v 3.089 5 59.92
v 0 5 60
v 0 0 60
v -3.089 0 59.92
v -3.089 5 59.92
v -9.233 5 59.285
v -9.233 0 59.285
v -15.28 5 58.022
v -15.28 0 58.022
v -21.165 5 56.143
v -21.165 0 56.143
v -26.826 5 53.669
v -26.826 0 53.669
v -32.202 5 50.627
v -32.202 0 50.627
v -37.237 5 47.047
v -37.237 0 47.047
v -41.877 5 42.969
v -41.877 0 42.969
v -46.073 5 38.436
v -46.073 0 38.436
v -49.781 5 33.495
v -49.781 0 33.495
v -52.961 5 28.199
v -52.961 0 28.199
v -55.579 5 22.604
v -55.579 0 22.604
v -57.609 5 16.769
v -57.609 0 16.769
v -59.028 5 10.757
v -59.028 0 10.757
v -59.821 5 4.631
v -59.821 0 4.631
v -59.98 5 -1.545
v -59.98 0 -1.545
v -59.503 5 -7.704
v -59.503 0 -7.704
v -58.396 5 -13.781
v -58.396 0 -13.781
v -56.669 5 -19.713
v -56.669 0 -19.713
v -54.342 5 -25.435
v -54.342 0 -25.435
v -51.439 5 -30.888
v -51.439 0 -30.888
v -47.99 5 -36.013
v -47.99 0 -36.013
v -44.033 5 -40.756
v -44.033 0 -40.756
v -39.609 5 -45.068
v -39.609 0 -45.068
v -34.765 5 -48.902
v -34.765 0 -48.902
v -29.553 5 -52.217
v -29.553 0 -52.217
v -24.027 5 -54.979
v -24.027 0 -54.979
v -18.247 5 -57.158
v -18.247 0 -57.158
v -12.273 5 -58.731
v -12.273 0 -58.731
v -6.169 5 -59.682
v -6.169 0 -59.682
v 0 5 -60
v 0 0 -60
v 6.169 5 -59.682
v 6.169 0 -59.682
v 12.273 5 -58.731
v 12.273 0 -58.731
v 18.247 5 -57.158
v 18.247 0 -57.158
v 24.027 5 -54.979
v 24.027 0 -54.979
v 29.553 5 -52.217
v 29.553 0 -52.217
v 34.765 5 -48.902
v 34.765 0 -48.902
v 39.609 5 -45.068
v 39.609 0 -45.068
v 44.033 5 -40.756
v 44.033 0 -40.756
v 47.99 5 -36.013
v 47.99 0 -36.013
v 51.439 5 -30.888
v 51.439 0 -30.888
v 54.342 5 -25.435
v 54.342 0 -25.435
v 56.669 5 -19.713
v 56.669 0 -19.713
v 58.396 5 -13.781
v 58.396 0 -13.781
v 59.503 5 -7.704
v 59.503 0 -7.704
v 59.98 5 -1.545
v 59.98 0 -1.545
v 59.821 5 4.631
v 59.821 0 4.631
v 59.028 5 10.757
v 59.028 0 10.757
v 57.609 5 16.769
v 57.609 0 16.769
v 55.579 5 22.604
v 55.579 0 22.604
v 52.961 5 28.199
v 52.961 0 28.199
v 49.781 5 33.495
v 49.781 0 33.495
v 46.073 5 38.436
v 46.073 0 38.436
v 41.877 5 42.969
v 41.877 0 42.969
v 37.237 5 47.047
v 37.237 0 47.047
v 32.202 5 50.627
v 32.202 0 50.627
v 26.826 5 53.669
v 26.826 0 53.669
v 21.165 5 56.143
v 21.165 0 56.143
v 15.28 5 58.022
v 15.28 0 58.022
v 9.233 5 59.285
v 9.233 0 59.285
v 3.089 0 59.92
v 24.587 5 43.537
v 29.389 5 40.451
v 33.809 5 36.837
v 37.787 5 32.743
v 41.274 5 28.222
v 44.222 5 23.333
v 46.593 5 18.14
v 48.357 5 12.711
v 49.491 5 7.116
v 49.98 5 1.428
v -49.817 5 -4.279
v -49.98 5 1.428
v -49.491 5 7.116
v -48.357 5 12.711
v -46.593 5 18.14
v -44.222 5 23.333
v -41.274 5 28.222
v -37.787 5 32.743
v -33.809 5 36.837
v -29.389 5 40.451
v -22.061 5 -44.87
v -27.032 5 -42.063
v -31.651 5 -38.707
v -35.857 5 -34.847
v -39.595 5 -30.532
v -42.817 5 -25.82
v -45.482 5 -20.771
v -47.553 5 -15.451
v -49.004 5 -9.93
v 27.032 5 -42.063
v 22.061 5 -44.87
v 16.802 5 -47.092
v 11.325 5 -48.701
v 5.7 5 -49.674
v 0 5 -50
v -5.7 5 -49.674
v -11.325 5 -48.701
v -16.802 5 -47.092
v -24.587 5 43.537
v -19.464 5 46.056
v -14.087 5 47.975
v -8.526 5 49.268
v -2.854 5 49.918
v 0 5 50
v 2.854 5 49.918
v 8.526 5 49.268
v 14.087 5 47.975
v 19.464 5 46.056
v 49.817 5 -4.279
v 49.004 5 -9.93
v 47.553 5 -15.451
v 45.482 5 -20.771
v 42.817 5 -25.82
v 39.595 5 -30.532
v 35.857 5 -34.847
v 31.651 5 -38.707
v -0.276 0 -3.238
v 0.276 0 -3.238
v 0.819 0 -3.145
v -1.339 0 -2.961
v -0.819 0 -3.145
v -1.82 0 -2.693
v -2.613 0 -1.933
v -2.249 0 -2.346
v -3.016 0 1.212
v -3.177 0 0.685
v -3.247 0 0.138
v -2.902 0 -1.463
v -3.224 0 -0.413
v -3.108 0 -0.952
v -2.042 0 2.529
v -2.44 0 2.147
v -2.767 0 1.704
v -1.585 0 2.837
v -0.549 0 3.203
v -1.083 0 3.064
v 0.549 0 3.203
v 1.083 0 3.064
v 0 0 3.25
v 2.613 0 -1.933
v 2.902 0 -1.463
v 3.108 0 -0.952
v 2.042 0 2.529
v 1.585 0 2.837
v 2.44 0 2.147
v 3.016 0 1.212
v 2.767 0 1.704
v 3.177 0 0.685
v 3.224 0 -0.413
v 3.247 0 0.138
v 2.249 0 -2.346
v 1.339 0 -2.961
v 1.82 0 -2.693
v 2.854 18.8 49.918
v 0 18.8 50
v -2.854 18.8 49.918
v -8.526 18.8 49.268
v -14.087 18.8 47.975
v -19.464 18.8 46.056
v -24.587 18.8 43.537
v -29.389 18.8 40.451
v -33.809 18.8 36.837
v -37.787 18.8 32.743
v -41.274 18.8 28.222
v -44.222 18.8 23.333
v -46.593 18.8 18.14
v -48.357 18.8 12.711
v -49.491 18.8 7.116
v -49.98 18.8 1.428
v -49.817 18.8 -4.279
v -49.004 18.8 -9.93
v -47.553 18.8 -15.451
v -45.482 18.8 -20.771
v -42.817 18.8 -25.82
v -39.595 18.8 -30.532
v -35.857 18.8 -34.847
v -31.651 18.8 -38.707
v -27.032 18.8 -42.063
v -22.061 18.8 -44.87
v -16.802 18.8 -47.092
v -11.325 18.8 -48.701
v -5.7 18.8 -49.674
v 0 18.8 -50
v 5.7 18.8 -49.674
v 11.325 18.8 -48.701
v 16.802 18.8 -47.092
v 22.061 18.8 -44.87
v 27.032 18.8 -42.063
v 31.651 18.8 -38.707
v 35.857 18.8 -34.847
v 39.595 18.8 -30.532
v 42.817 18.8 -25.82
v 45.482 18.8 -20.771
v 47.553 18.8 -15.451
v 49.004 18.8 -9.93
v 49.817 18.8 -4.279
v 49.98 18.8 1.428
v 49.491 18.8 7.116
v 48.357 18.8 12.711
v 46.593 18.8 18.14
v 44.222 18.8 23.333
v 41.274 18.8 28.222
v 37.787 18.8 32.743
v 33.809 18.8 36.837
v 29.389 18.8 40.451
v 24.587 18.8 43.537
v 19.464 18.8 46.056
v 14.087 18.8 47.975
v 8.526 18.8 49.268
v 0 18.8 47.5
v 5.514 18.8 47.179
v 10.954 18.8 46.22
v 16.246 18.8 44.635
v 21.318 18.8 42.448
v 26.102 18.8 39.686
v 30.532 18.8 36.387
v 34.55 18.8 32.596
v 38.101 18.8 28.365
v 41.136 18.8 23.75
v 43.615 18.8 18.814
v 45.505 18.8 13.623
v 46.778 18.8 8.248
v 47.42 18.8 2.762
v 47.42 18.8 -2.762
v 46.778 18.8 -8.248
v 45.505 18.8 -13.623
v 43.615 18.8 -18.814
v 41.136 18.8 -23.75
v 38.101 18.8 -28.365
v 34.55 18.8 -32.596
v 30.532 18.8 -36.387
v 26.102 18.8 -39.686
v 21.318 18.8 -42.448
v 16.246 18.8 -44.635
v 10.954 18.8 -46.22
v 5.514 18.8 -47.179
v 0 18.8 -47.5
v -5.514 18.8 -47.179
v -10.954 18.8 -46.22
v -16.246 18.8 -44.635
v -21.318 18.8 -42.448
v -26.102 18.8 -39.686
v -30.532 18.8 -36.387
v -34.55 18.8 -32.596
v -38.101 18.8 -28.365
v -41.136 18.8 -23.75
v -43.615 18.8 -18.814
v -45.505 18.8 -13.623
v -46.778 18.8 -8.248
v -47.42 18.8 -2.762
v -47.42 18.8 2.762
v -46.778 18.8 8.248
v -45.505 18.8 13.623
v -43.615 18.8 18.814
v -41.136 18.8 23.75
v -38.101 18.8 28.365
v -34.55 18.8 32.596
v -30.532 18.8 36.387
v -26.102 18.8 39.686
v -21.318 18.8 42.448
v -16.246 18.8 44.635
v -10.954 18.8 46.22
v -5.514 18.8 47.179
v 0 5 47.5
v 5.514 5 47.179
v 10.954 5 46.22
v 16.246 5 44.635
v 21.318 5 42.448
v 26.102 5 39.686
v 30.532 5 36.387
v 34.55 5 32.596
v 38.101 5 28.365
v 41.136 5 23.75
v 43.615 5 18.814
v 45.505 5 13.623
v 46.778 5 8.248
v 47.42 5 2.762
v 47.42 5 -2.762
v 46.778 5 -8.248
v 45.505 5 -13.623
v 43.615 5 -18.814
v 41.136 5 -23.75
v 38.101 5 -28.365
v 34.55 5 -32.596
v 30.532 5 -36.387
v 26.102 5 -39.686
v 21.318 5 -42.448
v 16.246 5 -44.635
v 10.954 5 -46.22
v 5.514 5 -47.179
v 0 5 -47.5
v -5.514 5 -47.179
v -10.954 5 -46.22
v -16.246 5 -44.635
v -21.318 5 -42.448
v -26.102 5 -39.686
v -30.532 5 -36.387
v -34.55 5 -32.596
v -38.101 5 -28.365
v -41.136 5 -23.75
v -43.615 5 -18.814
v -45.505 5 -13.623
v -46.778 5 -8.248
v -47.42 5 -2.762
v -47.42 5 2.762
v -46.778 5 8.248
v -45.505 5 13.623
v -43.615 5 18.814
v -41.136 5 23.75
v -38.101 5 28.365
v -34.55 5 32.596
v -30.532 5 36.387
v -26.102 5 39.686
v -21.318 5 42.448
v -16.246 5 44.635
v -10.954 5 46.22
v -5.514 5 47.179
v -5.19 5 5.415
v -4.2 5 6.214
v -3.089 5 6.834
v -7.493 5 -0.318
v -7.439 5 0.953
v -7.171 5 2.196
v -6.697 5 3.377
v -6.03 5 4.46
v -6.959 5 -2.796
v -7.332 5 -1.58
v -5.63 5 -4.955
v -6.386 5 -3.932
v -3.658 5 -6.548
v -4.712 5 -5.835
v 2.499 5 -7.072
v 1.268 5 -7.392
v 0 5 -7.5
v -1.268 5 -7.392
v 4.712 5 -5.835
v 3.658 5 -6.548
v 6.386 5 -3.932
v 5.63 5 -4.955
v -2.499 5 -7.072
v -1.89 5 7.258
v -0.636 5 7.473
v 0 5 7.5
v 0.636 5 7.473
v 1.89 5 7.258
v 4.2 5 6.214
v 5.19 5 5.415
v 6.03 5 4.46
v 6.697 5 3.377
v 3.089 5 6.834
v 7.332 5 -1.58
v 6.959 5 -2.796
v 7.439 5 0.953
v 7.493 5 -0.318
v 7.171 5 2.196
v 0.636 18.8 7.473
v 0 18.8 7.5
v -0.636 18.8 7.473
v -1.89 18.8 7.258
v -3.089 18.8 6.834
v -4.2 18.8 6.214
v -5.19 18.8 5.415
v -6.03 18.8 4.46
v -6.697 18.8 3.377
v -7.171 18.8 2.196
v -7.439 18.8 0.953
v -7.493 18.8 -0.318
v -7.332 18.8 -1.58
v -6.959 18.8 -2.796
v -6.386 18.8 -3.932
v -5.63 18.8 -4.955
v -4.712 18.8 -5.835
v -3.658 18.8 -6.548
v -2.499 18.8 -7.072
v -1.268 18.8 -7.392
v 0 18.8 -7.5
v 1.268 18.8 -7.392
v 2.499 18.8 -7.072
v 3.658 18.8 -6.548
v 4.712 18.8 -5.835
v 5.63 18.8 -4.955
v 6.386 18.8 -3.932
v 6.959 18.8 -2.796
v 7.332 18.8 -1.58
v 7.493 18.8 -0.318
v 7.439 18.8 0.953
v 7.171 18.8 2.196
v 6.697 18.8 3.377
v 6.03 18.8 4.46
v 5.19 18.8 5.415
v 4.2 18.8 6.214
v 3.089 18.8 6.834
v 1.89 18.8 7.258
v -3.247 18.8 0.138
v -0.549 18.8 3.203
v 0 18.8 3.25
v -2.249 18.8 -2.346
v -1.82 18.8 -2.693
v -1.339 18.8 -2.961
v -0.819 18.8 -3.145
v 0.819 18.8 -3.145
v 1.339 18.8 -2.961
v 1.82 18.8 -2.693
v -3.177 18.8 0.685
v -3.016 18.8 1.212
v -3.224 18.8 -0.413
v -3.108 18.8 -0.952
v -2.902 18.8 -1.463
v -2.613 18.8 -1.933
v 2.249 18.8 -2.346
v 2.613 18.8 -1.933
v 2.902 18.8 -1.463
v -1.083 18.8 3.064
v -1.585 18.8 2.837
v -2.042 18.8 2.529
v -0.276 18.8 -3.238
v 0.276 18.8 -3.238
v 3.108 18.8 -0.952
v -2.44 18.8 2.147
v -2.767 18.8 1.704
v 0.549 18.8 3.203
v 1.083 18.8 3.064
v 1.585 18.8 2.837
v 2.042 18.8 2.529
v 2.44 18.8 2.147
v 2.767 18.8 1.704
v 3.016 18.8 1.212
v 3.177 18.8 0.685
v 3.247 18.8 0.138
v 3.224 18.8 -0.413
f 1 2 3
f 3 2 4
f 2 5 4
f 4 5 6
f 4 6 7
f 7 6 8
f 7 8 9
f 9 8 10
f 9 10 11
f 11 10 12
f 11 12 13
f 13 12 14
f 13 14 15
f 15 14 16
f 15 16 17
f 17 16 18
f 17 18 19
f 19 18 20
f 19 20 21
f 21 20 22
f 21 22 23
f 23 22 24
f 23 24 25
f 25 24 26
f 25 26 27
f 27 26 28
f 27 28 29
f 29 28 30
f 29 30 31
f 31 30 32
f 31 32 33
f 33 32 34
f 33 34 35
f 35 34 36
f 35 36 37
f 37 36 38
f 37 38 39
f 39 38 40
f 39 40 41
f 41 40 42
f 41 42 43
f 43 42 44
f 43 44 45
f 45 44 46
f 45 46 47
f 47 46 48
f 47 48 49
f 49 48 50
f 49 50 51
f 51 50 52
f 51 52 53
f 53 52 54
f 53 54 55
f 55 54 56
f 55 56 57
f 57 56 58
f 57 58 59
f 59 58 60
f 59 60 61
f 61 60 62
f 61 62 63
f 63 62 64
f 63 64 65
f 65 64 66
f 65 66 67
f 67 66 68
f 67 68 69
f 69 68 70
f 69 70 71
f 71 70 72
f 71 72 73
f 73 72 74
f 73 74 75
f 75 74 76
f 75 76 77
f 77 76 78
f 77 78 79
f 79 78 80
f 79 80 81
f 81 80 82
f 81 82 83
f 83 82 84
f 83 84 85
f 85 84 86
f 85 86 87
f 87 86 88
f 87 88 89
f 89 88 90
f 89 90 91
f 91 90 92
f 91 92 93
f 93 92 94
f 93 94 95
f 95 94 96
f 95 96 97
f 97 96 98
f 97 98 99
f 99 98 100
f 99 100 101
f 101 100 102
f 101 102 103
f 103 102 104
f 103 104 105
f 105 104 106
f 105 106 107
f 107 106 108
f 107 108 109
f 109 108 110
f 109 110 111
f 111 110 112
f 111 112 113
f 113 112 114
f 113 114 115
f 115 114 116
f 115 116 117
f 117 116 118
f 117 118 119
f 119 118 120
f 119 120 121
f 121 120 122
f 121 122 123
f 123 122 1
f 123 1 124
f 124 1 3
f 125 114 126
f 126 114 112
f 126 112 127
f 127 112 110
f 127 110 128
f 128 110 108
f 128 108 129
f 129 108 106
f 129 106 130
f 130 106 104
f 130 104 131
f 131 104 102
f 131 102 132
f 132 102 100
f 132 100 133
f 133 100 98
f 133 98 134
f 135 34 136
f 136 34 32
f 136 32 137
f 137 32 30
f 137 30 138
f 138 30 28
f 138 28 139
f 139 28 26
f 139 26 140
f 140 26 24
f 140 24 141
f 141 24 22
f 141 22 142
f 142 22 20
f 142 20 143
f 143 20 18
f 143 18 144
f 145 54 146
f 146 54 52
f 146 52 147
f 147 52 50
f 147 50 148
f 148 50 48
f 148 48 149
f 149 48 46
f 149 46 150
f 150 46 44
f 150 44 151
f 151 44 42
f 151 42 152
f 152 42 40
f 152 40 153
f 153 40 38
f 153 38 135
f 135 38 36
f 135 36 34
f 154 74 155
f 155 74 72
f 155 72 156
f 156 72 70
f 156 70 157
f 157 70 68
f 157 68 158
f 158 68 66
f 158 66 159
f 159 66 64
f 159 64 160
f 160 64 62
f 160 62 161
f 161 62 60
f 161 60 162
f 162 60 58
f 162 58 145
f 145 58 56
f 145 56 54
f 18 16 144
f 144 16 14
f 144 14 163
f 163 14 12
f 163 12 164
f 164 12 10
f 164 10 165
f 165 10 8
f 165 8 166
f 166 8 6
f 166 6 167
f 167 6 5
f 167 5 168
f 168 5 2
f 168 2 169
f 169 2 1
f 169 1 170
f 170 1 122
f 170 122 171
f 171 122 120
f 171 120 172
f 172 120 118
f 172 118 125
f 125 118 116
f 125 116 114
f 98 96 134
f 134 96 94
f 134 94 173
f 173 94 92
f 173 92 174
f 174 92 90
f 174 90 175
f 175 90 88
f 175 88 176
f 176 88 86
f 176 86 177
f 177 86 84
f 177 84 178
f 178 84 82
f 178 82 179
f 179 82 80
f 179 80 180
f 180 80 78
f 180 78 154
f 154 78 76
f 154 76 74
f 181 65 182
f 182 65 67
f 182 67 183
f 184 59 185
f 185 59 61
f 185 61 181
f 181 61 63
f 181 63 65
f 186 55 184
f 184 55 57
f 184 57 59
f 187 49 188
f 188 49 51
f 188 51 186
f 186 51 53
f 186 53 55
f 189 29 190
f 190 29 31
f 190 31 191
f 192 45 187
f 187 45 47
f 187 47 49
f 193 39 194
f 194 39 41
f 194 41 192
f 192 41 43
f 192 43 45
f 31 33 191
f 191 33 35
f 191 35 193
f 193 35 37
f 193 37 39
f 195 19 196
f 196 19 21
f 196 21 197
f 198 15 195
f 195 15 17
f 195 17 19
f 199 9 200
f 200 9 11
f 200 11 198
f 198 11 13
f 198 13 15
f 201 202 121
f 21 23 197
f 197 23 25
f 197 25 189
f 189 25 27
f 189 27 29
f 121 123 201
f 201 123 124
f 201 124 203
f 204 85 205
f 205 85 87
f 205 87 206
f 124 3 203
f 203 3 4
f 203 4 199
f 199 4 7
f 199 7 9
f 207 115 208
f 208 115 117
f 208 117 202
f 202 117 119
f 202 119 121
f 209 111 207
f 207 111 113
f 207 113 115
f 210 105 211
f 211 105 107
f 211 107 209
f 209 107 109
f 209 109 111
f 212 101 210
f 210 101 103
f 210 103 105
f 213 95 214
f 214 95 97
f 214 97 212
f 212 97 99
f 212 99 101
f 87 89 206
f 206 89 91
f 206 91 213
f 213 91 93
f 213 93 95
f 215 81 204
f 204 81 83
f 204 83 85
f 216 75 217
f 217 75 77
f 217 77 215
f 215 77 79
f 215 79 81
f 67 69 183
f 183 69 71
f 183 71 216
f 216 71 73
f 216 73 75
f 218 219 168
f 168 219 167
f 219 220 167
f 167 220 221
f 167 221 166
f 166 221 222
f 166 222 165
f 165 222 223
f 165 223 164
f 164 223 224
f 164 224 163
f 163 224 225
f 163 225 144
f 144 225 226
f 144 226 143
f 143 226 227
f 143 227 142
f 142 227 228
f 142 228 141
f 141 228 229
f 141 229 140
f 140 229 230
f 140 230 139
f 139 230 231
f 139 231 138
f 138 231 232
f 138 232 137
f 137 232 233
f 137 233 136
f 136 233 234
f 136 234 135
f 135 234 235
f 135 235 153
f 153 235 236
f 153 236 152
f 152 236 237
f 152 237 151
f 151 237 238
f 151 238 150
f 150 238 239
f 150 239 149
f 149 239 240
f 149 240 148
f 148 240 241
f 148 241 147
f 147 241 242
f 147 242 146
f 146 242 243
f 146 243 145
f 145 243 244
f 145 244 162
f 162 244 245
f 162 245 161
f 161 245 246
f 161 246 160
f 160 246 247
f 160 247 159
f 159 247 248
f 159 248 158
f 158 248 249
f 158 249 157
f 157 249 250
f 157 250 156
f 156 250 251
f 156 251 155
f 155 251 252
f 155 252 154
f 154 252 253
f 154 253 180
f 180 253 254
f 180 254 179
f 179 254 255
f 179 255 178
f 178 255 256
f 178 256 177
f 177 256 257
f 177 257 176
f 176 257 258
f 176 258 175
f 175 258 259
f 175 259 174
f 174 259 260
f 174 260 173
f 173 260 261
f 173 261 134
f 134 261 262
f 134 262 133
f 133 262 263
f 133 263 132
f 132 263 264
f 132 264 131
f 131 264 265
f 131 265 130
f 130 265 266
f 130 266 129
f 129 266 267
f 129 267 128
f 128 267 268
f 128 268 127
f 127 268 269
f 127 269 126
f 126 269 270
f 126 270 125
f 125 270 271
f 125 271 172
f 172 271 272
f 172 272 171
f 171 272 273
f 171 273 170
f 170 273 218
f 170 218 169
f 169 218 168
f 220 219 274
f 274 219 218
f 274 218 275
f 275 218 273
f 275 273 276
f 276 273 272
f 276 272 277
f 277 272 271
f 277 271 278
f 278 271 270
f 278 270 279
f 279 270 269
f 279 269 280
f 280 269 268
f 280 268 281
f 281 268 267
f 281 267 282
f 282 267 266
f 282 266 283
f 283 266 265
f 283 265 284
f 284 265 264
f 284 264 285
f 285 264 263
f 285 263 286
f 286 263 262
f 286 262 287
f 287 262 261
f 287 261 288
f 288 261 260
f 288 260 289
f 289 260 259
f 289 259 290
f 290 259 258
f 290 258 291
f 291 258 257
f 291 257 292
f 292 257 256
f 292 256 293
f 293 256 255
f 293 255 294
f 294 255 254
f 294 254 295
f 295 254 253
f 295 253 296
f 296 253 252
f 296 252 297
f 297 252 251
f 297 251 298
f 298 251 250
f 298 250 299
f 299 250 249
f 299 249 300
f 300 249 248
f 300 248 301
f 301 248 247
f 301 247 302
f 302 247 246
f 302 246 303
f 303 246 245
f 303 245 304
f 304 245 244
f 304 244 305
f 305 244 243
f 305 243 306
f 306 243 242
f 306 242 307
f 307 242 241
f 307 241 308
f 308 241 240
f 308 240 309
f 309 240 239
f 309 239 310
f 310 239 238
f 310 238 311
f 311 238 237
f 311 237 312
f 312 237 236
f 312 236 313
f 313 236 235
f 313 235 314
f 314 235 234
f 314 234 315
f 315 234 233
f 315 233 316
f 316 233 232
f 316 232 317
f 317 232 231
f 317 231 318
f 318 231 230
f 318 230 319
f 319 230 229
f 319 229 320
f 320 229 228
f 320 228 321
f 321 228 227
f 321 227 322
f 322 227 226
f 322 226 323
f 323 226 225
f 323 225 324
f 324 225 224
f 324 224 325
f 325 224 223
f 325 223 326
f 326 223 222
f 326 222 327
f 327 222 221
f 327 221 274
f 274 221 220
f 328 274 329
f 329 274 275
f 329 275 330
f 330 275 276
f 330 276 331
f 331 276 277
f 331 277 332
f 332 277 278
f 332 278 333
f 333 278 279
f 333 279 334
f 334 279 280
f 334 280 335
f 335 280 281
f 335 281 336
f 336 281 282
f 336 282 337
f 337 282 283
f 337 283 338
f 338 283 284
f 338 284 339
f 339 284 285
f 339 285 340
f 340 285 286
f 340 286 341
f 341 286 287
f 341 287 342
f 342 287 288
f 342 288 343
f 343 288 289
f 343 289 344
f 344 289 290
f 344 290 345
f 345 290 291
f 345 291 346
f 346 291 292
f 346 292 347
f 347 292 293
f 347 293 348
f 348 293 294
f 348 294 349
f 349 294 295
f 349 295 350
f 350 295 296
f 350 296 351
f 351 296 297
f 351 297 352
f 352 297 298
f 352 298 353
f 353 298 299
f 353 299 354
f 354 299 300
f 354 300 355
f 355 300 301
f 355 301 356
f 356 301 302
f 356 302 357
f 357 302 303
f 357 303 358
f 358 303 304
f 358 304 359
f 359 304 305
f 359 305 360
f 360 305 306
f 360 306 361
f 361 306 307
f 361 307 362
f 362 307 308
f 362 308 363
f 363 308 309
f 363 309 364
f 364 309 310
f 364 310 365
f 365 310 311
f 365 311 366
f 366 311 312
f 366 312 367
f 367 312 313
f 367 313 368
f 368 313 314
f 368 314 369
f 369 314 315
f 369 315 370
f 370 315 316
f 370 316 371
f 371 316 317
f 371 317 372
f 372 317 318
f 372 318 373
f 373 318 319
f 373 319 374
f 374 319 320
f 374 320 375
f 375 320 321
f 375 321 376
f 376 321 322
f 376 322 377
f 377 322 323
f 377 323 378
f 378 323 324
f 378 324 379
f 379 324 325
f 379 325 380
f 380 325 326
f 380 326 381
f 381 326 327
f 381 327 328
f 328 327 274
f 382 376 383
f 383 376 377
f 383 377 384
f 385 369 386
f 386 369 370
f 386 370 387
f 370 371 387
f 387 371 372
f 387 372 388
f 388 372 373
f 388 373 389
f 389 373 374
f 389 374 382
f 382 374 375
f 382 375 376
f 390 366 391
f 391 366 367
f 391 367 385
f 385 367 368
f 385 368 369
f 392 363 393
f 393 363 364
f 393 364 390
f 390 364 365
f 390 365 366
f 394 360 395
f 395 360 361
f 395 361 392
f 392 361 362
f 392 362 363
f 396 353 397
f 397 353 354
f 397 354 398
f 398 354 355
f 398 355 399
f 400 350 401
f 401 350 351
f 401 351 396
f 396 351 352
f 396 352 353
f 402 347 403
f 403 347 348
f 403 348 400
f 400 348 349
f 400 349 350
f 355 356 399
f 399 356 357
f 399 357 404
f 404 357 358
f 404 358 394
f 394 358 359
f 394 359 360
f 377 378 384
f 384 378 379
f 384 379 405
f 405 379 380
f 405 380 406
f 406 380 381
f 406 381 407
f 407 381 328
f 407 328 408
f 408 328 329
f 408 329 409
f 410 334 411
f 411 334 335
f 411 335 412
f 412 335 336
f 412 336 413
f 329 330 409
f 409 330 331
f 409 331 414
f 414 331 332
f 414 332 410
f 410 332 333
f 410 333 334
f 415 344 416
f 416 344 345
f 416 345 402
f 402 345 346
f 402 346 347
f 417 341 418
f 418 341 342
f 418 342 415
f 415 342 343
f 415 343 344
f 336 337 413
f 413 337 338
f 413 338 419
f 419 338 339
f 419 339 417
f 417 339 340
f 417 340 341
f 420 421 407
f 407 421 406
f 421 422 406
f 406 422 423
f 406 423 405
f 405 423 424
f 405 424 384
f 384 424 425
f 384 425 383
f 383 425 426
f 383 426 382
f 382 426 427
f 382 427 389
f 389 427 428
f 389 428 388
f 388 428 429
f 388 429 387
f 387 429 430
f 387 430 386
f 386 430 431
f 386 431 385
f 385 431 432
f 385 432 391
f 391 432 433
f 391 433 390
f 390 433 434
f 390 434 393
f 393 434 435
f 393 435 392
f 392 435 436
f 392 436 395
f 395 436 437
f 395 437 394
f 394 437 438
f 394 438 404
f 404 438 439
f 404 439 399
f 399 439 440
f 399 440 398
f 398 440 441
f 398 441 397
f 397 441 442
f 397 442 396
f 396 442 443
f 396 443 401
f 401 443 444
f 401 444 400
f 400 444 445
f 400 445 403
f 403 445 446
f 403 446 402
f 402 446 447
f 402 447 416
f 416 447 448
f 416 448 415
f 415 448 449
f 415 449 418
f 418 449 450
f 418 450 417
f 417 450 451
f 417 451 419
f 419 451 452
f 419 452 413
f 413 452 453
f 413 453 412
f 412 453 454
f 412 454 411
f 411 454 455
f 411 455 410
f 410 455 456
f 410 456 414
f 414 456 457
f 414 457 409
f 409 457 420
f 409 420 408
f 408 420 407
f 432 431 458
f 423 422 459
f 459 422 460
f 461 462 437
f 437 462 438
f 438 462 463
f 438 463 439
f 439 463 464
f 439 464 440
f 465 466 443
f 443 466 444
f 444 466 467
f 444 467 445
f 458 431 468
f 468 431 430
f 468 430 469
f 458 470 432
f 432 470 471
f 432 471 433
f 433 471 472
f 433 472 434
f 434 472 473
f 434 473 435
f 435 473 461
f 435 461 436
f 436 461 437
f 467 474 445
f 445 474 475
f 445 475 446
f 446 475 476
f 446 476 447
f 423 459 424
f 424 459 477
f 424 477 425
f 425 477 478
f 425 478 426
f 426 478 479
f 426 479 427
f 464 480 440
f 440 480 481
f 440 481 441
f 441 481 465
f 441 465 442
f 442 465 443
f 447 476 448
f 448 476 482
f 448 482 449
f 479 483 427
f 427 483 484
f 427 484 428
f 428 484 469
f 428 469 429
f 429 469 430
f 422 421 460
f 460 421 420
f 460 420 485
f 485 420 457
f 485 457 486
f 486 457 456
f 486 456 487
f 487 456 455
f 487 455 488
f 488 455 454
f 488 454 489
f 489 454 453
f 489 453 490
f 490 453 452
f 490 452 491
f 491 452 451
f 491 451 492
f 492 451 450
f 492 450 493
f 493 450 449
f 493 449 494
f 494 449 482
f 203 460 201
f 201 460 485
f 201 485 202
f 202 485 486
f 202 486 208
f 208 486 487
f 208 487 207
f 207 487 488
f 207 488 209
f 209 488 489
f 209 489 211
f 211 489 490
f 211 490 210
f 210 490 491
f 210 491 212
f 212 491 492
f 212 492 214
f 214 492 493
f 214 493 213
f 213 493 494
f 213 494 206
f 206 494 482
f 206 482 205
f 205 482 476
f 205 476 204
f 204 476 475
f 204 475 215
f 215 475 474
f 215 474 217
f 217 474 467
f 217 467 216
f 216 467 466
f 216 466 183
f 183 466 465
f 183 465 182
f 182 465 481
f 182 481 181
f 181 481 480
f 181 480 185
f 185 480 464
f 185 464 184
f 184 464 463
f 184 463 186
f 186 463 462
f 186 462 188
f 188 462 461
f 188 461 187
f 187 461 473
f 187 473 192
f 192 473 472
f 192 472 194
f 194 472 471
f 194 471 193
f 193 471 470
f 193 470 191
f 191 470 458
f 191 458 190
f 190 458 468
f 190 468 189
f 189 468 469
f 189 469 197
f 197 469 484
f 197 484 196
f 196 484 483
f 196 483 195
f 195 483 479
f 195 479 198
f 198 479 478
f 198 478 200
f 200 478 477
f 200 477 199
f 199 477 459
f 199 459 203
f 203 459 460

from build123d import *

# Parameters (mm, degrees)
SKETCH1_R           = 60
BOSS_EXTRUDE1_DEPTH = 5
SKETCH2_R           = 50
BOSS_EXTRUDE2_DEPTH = 13.8
SKETCH3_R           = 47.5
CUT_EXTRUDE1_DEPTH  = 13.8
SKETCH4_R           = 7.5
BOSS_EXTRUDE3_DEPTH = 13.8
SKETCH6_R           = 3.25
CUT_EXTRUDE2_DEPTH  = 35


with BuildPart() as part:
    # Sketch1 → Boss-Extrude1 (new body)
    with BuildSketch(Plane(origin=(0, 0, 0), x_dir=(1, 0, 0), z_dir=(0, 1, 0))):
        Circle(SKETCH1_R)
    extrude(amount=BOSS_EXTRUDE1_DEPTH)

    # Sketch2 → Boss-Extrude2 (add)
    with BuildSketch(Plane(origin=(0, 5, 0), x_dir=(1, 0, 0), z_dir=(0, 1, 0))):
        Circle(SKETCH2_R)
    extrude(amount=BOSS_EXTRUDE2_DEPTH)

    # Sketch3 → Cut-Extrude1 (cut)
    with BuildSketch(Plane(origin=(0, 18.8, 0), x_dir=(1, 0, 0), z_dir=(0, 1, 0))):
        Circle(SKETCH3_R)
    extrude(amount=-CUT_EXTRUDE1_DEPTH, mode=Mode.SUBTRACT)

    # Sketch4 → Boss-Extrude3 (add)
    with BuildSketch(Plane(origin=(0, 5, 0), x_dir=(1, 0, 0), z_dir=(0, 1, 0))):
        Circle(SKETCH4_R)
    extrude(amount=BOSS_EXTRUDE3_DEPTH)

    # Sketch6 → Cut-Extrude2 (cut)
    with BuildSketch(Plane(origin=(0, 18.8, 0), x_dir=(1, 0, 0), z_dir=(0, 1, 0))):
        Circle(SKETCH6_R)
    extrude(amount=-CUT_EXTRUDE2_DEPTH, mode=Mode.SUBTRACT)


solid = part.part
